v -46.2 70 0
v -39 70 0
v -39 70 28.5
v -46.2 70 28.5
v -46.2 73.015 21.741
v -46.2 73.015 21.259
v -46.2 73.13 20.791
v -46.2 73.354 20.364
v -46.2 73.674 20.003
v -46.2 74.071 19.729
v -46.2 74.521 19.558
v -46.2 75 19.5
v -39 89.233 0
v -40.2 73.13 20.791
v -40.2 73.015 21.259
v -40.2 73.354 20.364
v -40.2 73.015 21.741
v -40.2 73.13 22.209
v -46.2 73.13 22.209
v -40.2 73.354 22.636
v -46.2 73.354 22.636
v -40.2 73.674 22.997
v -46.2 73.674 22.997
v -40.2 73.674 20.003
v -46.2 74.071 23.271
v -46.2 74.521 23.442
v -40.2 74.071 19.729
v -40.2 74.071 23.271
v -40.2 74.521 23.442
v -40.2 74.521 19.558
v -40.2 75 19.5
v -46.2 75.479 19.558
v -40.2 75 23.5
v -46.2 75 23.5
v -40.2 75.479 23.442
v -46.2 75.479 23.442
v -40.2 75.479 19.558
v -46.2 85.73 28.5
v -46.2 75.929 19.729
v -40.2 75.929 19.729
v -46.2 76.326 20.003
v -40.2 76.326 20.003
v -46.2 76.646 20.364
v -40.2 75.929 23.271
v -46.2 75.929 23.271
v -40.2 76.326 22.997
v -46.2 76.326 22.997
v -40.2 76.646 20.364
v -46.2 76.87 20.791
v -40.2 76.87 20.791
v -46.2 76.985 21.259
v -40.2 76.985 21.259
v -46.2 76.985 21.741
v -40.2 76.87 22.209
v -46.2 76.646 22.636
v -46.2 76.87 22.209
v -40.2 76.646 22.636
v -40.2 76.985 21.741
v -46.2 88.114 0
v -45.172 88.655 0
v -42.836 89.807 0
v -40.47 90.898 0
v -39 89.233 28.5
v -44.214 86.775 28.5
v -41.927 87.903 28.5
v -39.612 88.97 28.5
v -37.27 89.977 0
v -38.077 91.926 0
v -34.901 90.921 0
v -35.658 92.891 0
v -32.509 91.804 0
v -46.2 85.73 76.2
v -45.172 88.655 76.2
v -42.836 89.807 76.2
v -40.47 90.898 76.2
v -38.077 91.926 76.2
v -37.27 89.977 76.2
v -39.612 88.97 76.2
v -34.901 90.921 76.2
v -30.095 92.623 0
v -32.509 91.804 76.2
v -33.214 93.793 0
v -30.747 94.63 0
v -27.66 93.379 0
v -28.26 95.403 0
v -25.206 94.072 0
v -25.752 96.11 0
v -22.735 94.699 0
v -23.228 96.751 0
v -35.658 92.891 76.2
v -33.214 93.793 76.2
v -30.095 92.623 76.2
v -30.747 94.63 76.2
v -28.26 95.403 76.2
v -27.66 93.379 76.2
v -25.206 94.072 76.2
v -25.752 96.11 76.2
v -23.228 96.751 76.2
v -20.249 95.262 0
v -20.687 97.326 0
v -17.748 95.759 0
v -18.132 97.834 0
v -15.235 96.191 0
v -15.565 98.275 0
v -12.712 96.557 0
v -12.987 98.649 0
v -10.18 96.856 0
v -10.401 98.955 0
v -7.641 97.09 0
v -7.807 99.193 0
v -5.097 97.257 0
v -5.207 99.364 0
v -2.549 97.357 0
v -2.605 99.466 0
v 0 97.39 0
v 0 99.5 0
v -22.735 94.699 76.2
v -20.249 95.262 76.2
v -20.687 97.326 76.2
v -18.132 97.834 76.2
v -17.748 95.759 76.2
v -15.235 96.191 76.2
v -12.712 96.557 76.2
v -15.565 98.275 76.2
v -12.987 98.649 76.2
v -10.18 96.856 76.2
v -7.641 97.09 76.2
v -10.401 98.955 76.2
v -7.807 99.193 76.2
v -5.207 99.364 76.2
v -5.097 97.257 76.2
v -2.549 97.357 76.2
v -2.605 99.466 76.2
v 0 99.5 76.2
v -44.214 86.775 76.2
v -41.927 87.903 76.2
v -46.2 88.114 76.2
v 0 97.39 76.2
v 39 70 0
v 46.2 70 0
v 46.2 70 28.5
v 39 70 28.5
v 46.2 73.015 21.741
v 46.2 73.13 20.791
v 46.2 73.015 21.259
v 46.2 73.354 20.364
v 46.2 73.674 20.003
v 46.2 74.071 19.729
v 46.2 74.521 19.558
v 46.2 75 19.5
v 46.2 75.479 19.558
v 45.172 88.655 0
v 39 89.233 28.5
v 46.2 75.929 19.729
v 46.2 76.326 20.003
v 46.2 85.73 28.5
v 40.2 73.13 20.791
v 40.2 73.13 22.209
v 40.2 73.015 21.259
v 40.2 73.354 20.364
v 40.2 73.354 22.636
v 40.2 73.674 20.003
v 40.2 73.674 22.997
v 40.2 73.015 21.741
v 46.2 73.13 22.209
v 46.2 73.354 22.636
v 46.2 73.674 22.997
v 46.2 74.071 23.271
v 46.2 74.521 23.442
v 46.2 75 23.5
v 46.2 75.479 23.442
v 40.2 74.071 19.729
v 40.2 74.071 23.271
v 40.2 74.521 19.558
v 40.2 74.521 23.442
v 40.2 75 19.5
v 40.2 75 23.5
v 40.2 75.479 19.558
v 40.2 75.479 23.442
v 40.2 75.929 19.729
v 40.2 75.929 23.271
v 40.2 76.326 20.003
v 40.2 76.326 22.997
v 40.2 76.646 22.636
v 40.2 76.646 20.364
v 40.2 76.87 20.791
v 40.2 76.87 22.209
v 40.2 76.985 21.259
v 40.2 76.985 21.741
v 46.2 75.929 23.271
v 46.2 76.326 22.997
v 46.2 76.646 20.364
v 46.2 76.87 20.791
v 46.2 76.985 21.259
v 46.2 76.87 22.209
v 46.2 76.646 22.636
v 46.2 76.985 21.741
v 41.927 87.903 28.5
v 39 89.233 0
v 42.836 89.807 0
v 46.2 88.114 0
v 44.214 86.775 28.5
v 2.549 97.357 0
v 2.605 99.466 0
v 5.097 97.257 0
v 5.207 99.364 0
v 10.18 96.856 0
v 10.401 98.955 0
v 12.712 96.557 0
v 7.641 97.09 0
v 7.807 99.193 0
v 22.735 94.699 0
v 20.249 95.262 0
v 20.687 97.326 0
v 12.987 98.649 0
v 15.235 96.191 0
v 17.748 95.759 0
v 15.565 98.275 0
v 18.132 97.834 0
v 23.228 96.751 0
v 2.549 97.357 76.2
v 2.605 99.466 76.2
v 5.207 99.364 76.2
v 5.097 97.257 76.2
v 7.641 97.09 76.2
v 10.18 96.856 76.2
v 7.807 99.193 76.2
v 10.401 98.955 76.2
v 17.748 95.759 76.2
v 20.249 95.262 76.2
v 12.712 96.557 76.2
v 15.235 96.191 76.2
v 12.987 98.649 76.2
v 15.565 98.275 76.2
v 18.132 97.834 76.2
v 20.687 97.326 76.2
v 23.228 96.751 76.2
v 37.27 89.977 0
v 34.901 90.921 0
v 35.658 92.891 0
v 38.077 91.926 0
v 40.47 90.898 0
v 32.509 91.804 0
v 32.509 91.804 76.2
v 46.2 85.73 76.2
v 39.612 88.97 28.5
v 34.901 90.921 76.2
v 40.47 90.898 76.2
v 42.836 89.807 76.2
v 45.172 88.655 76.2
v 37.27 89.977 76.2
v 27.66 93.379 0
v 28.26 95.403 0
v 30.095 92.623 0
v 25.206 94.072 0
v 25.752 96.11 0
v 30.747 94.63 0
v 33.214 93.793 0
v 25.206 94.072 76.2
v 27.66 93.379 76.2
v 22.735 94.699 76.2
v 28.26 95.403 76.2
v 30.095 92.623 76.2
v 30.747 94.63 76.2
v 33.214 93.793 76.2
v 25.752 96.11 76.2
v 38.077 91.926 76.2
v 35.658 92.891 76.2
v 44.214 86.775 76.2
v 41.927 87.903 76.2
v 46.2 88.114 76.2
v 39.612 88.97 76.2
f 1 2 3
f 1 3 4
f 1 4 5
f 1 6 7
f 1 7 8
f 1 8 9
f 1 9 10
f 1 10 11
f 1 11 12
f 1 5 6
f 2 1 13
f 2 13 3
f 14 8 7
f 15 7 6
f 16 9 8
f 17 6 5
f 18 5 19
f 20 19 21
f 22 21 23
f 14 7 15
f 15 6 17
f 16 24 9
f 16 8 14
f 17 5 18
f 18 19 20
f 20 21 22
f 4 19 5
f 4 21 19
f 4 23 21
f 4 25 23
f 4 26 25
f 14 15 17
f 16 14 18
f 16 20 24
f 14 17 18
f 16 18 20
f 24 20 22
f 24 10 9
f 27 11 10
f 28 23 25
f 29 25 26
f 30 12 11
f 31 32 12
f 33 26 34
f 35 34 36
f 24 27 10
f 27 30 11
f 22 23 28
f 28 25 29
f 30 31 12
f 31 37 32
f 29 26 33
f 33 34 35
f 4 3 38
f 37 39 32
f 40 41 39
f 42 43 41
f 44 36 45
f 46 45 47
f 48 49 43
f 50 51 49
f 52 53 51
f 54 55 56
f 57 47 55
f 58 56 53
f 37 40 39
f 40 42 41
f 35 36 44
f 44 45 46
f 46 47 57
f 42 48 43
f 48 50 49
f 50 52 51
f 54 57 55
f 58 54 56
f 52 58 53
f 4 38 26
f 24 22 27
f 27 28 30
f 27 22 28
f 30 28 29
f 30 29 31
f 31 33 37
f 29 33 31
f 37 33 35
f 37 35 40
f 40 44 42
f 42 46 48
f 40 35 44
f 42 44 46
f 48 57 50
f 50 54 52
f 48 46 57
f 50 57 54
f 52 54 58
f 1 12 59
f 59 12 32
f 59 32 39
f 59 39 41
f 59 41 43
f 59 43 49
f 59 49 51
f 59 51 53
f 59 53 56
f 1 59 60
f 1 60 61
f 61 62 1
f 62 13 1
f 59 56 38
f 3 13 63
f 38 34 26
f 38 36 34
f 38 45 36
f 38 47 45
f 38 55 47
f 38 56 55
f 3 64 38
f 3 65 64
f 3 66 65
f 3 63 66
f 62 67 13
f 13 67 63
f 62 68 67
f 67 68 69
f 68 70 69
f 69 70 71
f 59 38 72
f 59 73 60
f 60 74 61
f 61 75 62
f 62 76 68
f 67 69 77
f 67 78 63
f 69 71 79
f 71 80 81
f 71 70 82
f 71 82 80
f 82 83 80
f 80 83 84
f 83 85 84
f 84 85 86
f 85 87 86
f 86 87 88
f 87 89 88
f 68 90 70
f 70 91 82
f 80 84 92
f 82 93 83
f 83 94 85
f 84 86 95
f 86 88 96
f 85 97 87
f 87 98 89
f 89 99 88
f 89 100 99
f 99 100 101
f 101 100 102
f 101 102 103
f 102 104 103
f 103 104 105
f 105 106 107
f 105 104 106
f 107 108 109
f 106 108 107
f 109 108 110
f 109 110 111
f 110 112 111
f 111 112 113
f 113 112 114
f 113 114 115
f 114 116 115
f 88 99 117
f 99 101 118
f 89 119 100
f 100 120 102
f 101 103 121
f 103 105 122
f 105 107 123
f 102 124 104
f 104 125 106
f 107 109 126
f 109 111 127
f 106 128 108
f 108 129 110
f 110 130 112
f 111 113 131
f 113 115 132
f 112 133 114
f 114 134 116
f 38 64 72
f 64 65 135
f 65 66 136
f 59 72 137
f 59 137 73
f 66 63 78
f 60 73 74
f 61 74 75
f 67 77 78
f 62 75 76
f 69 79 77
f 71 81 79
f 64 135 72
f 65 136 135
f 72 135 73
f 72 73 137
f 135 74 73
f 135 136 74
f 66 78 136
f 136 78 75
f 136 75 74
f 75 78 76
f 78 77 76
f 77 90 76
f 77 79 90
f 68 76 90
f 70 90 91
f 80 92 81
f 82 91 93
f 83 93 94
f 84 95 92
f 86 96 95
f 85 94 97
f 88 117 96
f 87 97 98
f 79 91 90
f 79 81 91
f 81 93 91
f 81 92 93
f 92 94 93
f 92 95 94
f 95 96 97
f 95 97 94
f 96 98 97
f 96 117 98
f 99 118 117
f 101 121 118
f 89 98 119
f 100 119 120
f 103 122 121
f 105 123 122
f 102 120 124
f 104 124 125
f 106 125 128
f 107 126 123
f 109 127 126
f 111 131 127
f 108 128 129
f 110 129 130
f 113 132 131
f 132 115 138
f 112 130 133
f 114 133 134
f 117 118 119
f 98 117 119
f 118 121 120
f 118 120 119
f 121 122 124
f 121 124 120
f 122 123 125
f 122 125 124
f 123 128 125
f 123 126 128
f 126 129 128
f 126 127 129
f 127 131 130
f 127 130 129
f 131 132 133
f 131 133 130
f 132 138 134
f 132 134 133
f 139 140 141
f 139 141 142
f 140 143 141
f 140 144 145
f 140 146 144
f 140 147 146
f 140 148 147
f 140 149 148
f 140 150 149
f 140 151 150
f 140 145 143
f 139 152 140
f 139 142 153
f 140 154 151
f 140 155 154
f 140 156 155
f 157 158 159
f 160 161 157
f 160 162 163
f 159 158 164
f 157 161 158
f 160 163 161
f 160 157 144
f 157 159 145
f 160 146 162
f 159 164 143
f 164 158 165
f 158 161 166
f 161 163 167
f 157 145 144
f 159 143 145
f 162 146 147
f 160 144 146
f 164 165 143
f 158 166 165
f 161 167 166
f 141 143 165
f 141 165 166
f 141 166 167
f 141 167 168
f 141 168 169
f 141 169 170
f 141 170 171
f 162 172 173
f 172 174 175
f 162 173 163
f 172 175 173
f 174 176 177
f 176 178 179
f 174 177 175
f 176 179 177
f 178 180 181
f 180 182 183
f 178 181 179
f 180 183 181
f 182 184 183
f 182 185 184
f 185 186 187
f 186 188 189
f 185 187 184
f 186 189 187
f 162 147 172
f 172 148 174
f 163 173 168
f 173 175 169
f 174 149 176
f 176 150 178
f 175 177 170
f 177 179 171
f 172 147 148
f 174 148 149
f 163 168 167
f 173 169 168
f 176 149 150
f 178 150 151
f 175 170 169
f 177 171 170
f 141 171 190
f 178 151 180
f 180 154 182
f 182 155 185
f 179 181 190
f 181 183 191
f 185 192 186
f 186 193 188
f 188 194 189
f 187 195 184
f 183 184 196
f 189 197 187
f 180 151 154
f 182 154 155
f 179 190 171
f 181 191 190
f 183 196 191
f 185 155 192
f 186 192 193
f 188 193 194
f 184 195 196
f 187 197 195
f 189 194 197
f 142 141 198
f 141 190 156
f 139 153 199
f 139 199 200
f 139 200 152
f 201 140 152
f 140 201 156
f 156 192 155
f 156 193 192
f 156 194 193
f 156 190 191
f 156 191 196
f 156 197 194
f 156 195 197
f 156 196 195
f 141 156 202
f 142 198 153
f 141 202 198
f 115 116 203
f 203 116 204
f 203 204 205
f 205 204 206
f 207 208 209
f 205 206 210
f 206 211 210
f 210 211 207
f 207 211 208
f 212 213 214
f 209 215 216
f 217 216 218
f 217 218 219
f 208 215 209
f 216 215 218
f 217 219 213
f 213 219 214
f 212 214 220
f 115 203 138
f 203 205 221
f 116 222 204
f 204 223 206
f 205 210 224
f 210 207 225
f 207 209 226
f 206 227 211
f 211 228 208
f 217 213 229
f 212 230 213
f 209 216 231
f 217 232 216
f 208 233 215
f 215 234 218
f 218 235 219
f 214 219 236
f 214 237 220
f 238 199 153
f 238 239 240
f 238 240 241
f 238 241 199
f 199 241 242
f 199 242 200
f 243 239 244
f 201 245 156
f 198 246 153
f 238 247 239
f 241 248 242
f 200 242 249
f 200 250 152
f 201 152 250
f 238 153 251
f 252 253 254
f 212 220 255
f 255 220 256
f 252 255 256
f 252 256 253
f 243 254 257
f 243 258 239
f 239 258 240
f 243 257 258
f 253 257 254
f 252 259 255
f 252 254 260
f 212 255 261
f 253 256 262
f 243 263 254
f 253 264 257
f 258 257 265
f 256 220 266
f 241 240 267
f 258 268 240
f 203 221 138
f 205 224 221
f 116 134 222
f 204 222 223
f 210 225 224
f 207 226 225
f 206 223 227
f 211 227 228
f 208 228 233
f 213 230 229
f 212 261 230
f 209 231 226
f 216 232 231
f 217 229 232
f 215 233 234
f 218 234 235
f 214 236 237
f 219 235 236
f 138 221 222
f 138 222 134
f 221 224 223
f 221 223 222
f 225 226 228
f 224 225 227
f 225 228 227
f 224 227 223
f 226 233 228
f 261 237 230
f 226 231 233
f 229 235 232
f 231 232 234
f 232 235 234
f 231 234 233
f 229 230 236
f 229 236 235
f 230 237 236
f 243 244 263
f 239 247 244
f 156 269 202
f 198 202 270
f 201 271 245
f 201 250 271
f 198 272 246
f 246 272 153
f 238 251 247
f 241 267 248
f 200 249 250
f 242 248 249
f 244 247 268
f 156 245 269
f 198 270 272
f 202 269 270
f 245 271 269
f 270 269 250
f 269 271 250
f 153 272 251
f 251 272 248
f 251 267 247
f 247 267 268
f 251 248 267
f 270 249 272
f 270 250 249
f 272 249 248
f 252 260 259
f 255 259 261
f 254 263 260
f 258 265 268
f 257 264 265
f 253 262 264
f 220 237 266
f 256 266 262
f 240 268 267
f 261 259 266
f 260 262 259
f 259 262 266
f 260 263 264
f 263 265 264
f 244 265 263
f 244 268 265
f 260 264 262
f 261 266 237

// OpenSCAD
// file: lib/lib.scad
// Shared helpers. Include AFTER params.scad (needs TOL, M3_* etc.).
$fa = 4; $fs = 0.5;

module rrect(size, r) {            // 2D rounded rectangle, centred
    r2 = min(r, min(size[0], size[1]) / 2 - 0.001);
    offset(r = r2) square([size[0] - 2 * r2, size[1] - 2 * r2], center = true);
}
module rbox(size, r, center_xy = true) {   // box with rounded vertical edges
    translate(center_xy ? [0, 0, 0] : [size[0] / 2, size[1] / 2, 0])
        linear_extrude(size[2]) rrect([size[0], size[1]], r);
}
module rbox_at(x0, x1, y0, y1, z0, z1, r = 0.01) {
    translate([(x0 + x1) / 2, (y0 + y1) / 2, z0]) rbox([x1 - x0, y1 - y0, z1 - z0], r);
}
module box_at(x0, x1, y0, y1, z0, z1) { translate([x0, y0, z0]) cube([x1 - x0, y1 - y0, z1 - z0]); }

module ring(ro, ri, h) { difference() { cylinder(r = ro, h = h); translate([0, 0, -1]) cylinder(r = ri, h = h + 2); } }
module ring_sector(ro, ri, h, a0, a1) {
    intersection() {
        ring(ro, ri, h);
        linear_extrude(h) polygon(concat([[0, 0]], [for (a = [a0 : (a1 - a0) / 24 : a1]) 2 * ro * [cos(a), sin(a)]]));
    }
}
// teardrop hole along an axis lying horizontal (axis = Y after rotation), printable w/o support
module teardrop2d(d) { union() { circle(d = d); rotate(45) square(d / 2); } }
// vertical heat-set insert hole, opening at z=0 going +z (depth l)
module insert_hole(l = M3_INSERT_L) { translate([0, 0, -EPS]) cylinder(d = M3_INSERT_D, h = l + EPS); }
module m3_clear(l) { translate([0, 0, -EPS]) cylinder(d = M3_CLEAR, h = l + 2 * EPS); }
module m3_csk(l) {  // countersunk clearance from z=0 upward, head at z=0 side
    translate([0, 0, -EPS]) { cylinder(d = M3_CLEAR, h = l + 2 * EPS); cylinder(d1 = 6.4, d2 = M3_CLEAR, h = 1.7); }
}
module card2d() { rrect([CARD_L, CARD_W], CARD_R); }
module card_at(cy, z) { translate([0, cy, z]) linear_extrude(CARD_T) card2d(); }

// ---- gears ----
function _inv(a) = tan(a) - a * PI_ / 180;           // involute function, a in deg
function _invpt(rb, r, ang0, s) = let(al = acos(rb / r), th = ang0 - s * (_inv(al) * 180 / PI_)) [r * cos(th), r * sin(th)];
module involute_gear2d(m, z, pa = 20, clearance = 0.05) {
    rp = m * z / 2; rb = rp * cos(pa); ra = rp + m - clearance; rf = rp - 1.25 * m;
    half = 90 / z + _inv(pa) * 180 / PI_;            // tooth half-angle at base (deg)
    n = 8;
    rs = [for (i = [0 : n]) max(rb, rf) + (ra - max(rb, rf)) * i / n];
    union() {
        circle(r = rf, $fn = z * 4);
        for (k = [0 : z - 1]) rotate(k * 360 / z) polygon(concat(
            [[rf * cos(-half), rf * sin(-half)]],
            [for (r = rs) let(p = _invpt(rb, r, half, 1)) [p[0], -p[1]]],
            [for (i = [n : -1 : 0]) _invpt(rb, rs[i], half, 1)],
            [[rf * cos(half), rf * sin(half)]]));
    }
}
// straight gear rack (2D in XY: teeth along +x, pointing -y, pitch line at y=0)
module gear_rack2d(m, len, back = 3) {
    p = PI_ * m; ad = m; de = 1.25 * m; t = tan(20);
    n = ceil(len / p) + 1;
    intersection() {
        union() {
            translate([0, de]) square([len, back]);
            for (i = [0 : n]) translate([i * p - p / 4, 0]) polygon([
                [-(p / 4 + de * t), de + 0.01], [p / 4 + de * t + 0.01, de + 0.01],
                [p / 4 - ad * t, -ad], [-(p / 4 - ad * t), -ad] ]);
        }
        translate([0, -ad - 1]) square([len, ad + de + back + 2]);
    }
}
// GT2 belt-tooth profile ring (teeth outward), 2D
module gt2_ring2d(n, r_land, ri) {
    union() {
        difference() { circle(r = r_land + 0.01, $fn = n * 2); circle(r = ri, $fn = n * 2); }
        for (k = [0 : n - 1]) rotate(k * 360 / n)
            translate([r_land, 0]) hull() { translate([-0.2, 0]) square([0.2, 1.0], center = true); translate([0.25, 0]) circle(r = 0.5, $fn = 12); }
    }
}
// main file
// Front slot panel (D-20): flush curved patch of the turret shell under the card exit slot
// (closes the shell notch; the 6 mm slot is between its top edge and the shell). Two inside
// tabs take inserts for M3 screws through the launcher side plates. Burns are thrown onto
// the table at BURN_DEG (D-20).
// Print: upright, no supports.
include <params.scad>
include <lib/lib.scad>
module slot_panel() difference() {
    union() {
        intersection() {
            ring(TURRET_R, TURRET_RI - 1.5 * GAP - EPS, 300, $fn = 240);
            box_at(-BT_XO, BT_XO, 0, TURRET_R + 1, BT_Z0, SLOT_Z0);
        }
        for (s = [-1, 1]) intersection() {
            box_at(s > 0 ? SP_TAB_X0 : -BT_XO, s > 0 ? BT_XO : -SP_TAB_X0, SP_INS[0] - 5, TURRET_R, BT_Z0, SP_INS[1] + 7);   // tabs stand on the bed
            cylinder(r = TURRET_RI - 1.5 * GAP, h = 300, $fn = 240);
        }
    }
    for (s = [-1, 1]) translate([s * BT_XO, SP_INS[0], SP_INS[1]]) rotate([0, -s * 90, 0]) insert_hole();
}
module slot_panel_print() translate([0, 0, -BT_Z0]) slot_panel();
slot_panel_print();
